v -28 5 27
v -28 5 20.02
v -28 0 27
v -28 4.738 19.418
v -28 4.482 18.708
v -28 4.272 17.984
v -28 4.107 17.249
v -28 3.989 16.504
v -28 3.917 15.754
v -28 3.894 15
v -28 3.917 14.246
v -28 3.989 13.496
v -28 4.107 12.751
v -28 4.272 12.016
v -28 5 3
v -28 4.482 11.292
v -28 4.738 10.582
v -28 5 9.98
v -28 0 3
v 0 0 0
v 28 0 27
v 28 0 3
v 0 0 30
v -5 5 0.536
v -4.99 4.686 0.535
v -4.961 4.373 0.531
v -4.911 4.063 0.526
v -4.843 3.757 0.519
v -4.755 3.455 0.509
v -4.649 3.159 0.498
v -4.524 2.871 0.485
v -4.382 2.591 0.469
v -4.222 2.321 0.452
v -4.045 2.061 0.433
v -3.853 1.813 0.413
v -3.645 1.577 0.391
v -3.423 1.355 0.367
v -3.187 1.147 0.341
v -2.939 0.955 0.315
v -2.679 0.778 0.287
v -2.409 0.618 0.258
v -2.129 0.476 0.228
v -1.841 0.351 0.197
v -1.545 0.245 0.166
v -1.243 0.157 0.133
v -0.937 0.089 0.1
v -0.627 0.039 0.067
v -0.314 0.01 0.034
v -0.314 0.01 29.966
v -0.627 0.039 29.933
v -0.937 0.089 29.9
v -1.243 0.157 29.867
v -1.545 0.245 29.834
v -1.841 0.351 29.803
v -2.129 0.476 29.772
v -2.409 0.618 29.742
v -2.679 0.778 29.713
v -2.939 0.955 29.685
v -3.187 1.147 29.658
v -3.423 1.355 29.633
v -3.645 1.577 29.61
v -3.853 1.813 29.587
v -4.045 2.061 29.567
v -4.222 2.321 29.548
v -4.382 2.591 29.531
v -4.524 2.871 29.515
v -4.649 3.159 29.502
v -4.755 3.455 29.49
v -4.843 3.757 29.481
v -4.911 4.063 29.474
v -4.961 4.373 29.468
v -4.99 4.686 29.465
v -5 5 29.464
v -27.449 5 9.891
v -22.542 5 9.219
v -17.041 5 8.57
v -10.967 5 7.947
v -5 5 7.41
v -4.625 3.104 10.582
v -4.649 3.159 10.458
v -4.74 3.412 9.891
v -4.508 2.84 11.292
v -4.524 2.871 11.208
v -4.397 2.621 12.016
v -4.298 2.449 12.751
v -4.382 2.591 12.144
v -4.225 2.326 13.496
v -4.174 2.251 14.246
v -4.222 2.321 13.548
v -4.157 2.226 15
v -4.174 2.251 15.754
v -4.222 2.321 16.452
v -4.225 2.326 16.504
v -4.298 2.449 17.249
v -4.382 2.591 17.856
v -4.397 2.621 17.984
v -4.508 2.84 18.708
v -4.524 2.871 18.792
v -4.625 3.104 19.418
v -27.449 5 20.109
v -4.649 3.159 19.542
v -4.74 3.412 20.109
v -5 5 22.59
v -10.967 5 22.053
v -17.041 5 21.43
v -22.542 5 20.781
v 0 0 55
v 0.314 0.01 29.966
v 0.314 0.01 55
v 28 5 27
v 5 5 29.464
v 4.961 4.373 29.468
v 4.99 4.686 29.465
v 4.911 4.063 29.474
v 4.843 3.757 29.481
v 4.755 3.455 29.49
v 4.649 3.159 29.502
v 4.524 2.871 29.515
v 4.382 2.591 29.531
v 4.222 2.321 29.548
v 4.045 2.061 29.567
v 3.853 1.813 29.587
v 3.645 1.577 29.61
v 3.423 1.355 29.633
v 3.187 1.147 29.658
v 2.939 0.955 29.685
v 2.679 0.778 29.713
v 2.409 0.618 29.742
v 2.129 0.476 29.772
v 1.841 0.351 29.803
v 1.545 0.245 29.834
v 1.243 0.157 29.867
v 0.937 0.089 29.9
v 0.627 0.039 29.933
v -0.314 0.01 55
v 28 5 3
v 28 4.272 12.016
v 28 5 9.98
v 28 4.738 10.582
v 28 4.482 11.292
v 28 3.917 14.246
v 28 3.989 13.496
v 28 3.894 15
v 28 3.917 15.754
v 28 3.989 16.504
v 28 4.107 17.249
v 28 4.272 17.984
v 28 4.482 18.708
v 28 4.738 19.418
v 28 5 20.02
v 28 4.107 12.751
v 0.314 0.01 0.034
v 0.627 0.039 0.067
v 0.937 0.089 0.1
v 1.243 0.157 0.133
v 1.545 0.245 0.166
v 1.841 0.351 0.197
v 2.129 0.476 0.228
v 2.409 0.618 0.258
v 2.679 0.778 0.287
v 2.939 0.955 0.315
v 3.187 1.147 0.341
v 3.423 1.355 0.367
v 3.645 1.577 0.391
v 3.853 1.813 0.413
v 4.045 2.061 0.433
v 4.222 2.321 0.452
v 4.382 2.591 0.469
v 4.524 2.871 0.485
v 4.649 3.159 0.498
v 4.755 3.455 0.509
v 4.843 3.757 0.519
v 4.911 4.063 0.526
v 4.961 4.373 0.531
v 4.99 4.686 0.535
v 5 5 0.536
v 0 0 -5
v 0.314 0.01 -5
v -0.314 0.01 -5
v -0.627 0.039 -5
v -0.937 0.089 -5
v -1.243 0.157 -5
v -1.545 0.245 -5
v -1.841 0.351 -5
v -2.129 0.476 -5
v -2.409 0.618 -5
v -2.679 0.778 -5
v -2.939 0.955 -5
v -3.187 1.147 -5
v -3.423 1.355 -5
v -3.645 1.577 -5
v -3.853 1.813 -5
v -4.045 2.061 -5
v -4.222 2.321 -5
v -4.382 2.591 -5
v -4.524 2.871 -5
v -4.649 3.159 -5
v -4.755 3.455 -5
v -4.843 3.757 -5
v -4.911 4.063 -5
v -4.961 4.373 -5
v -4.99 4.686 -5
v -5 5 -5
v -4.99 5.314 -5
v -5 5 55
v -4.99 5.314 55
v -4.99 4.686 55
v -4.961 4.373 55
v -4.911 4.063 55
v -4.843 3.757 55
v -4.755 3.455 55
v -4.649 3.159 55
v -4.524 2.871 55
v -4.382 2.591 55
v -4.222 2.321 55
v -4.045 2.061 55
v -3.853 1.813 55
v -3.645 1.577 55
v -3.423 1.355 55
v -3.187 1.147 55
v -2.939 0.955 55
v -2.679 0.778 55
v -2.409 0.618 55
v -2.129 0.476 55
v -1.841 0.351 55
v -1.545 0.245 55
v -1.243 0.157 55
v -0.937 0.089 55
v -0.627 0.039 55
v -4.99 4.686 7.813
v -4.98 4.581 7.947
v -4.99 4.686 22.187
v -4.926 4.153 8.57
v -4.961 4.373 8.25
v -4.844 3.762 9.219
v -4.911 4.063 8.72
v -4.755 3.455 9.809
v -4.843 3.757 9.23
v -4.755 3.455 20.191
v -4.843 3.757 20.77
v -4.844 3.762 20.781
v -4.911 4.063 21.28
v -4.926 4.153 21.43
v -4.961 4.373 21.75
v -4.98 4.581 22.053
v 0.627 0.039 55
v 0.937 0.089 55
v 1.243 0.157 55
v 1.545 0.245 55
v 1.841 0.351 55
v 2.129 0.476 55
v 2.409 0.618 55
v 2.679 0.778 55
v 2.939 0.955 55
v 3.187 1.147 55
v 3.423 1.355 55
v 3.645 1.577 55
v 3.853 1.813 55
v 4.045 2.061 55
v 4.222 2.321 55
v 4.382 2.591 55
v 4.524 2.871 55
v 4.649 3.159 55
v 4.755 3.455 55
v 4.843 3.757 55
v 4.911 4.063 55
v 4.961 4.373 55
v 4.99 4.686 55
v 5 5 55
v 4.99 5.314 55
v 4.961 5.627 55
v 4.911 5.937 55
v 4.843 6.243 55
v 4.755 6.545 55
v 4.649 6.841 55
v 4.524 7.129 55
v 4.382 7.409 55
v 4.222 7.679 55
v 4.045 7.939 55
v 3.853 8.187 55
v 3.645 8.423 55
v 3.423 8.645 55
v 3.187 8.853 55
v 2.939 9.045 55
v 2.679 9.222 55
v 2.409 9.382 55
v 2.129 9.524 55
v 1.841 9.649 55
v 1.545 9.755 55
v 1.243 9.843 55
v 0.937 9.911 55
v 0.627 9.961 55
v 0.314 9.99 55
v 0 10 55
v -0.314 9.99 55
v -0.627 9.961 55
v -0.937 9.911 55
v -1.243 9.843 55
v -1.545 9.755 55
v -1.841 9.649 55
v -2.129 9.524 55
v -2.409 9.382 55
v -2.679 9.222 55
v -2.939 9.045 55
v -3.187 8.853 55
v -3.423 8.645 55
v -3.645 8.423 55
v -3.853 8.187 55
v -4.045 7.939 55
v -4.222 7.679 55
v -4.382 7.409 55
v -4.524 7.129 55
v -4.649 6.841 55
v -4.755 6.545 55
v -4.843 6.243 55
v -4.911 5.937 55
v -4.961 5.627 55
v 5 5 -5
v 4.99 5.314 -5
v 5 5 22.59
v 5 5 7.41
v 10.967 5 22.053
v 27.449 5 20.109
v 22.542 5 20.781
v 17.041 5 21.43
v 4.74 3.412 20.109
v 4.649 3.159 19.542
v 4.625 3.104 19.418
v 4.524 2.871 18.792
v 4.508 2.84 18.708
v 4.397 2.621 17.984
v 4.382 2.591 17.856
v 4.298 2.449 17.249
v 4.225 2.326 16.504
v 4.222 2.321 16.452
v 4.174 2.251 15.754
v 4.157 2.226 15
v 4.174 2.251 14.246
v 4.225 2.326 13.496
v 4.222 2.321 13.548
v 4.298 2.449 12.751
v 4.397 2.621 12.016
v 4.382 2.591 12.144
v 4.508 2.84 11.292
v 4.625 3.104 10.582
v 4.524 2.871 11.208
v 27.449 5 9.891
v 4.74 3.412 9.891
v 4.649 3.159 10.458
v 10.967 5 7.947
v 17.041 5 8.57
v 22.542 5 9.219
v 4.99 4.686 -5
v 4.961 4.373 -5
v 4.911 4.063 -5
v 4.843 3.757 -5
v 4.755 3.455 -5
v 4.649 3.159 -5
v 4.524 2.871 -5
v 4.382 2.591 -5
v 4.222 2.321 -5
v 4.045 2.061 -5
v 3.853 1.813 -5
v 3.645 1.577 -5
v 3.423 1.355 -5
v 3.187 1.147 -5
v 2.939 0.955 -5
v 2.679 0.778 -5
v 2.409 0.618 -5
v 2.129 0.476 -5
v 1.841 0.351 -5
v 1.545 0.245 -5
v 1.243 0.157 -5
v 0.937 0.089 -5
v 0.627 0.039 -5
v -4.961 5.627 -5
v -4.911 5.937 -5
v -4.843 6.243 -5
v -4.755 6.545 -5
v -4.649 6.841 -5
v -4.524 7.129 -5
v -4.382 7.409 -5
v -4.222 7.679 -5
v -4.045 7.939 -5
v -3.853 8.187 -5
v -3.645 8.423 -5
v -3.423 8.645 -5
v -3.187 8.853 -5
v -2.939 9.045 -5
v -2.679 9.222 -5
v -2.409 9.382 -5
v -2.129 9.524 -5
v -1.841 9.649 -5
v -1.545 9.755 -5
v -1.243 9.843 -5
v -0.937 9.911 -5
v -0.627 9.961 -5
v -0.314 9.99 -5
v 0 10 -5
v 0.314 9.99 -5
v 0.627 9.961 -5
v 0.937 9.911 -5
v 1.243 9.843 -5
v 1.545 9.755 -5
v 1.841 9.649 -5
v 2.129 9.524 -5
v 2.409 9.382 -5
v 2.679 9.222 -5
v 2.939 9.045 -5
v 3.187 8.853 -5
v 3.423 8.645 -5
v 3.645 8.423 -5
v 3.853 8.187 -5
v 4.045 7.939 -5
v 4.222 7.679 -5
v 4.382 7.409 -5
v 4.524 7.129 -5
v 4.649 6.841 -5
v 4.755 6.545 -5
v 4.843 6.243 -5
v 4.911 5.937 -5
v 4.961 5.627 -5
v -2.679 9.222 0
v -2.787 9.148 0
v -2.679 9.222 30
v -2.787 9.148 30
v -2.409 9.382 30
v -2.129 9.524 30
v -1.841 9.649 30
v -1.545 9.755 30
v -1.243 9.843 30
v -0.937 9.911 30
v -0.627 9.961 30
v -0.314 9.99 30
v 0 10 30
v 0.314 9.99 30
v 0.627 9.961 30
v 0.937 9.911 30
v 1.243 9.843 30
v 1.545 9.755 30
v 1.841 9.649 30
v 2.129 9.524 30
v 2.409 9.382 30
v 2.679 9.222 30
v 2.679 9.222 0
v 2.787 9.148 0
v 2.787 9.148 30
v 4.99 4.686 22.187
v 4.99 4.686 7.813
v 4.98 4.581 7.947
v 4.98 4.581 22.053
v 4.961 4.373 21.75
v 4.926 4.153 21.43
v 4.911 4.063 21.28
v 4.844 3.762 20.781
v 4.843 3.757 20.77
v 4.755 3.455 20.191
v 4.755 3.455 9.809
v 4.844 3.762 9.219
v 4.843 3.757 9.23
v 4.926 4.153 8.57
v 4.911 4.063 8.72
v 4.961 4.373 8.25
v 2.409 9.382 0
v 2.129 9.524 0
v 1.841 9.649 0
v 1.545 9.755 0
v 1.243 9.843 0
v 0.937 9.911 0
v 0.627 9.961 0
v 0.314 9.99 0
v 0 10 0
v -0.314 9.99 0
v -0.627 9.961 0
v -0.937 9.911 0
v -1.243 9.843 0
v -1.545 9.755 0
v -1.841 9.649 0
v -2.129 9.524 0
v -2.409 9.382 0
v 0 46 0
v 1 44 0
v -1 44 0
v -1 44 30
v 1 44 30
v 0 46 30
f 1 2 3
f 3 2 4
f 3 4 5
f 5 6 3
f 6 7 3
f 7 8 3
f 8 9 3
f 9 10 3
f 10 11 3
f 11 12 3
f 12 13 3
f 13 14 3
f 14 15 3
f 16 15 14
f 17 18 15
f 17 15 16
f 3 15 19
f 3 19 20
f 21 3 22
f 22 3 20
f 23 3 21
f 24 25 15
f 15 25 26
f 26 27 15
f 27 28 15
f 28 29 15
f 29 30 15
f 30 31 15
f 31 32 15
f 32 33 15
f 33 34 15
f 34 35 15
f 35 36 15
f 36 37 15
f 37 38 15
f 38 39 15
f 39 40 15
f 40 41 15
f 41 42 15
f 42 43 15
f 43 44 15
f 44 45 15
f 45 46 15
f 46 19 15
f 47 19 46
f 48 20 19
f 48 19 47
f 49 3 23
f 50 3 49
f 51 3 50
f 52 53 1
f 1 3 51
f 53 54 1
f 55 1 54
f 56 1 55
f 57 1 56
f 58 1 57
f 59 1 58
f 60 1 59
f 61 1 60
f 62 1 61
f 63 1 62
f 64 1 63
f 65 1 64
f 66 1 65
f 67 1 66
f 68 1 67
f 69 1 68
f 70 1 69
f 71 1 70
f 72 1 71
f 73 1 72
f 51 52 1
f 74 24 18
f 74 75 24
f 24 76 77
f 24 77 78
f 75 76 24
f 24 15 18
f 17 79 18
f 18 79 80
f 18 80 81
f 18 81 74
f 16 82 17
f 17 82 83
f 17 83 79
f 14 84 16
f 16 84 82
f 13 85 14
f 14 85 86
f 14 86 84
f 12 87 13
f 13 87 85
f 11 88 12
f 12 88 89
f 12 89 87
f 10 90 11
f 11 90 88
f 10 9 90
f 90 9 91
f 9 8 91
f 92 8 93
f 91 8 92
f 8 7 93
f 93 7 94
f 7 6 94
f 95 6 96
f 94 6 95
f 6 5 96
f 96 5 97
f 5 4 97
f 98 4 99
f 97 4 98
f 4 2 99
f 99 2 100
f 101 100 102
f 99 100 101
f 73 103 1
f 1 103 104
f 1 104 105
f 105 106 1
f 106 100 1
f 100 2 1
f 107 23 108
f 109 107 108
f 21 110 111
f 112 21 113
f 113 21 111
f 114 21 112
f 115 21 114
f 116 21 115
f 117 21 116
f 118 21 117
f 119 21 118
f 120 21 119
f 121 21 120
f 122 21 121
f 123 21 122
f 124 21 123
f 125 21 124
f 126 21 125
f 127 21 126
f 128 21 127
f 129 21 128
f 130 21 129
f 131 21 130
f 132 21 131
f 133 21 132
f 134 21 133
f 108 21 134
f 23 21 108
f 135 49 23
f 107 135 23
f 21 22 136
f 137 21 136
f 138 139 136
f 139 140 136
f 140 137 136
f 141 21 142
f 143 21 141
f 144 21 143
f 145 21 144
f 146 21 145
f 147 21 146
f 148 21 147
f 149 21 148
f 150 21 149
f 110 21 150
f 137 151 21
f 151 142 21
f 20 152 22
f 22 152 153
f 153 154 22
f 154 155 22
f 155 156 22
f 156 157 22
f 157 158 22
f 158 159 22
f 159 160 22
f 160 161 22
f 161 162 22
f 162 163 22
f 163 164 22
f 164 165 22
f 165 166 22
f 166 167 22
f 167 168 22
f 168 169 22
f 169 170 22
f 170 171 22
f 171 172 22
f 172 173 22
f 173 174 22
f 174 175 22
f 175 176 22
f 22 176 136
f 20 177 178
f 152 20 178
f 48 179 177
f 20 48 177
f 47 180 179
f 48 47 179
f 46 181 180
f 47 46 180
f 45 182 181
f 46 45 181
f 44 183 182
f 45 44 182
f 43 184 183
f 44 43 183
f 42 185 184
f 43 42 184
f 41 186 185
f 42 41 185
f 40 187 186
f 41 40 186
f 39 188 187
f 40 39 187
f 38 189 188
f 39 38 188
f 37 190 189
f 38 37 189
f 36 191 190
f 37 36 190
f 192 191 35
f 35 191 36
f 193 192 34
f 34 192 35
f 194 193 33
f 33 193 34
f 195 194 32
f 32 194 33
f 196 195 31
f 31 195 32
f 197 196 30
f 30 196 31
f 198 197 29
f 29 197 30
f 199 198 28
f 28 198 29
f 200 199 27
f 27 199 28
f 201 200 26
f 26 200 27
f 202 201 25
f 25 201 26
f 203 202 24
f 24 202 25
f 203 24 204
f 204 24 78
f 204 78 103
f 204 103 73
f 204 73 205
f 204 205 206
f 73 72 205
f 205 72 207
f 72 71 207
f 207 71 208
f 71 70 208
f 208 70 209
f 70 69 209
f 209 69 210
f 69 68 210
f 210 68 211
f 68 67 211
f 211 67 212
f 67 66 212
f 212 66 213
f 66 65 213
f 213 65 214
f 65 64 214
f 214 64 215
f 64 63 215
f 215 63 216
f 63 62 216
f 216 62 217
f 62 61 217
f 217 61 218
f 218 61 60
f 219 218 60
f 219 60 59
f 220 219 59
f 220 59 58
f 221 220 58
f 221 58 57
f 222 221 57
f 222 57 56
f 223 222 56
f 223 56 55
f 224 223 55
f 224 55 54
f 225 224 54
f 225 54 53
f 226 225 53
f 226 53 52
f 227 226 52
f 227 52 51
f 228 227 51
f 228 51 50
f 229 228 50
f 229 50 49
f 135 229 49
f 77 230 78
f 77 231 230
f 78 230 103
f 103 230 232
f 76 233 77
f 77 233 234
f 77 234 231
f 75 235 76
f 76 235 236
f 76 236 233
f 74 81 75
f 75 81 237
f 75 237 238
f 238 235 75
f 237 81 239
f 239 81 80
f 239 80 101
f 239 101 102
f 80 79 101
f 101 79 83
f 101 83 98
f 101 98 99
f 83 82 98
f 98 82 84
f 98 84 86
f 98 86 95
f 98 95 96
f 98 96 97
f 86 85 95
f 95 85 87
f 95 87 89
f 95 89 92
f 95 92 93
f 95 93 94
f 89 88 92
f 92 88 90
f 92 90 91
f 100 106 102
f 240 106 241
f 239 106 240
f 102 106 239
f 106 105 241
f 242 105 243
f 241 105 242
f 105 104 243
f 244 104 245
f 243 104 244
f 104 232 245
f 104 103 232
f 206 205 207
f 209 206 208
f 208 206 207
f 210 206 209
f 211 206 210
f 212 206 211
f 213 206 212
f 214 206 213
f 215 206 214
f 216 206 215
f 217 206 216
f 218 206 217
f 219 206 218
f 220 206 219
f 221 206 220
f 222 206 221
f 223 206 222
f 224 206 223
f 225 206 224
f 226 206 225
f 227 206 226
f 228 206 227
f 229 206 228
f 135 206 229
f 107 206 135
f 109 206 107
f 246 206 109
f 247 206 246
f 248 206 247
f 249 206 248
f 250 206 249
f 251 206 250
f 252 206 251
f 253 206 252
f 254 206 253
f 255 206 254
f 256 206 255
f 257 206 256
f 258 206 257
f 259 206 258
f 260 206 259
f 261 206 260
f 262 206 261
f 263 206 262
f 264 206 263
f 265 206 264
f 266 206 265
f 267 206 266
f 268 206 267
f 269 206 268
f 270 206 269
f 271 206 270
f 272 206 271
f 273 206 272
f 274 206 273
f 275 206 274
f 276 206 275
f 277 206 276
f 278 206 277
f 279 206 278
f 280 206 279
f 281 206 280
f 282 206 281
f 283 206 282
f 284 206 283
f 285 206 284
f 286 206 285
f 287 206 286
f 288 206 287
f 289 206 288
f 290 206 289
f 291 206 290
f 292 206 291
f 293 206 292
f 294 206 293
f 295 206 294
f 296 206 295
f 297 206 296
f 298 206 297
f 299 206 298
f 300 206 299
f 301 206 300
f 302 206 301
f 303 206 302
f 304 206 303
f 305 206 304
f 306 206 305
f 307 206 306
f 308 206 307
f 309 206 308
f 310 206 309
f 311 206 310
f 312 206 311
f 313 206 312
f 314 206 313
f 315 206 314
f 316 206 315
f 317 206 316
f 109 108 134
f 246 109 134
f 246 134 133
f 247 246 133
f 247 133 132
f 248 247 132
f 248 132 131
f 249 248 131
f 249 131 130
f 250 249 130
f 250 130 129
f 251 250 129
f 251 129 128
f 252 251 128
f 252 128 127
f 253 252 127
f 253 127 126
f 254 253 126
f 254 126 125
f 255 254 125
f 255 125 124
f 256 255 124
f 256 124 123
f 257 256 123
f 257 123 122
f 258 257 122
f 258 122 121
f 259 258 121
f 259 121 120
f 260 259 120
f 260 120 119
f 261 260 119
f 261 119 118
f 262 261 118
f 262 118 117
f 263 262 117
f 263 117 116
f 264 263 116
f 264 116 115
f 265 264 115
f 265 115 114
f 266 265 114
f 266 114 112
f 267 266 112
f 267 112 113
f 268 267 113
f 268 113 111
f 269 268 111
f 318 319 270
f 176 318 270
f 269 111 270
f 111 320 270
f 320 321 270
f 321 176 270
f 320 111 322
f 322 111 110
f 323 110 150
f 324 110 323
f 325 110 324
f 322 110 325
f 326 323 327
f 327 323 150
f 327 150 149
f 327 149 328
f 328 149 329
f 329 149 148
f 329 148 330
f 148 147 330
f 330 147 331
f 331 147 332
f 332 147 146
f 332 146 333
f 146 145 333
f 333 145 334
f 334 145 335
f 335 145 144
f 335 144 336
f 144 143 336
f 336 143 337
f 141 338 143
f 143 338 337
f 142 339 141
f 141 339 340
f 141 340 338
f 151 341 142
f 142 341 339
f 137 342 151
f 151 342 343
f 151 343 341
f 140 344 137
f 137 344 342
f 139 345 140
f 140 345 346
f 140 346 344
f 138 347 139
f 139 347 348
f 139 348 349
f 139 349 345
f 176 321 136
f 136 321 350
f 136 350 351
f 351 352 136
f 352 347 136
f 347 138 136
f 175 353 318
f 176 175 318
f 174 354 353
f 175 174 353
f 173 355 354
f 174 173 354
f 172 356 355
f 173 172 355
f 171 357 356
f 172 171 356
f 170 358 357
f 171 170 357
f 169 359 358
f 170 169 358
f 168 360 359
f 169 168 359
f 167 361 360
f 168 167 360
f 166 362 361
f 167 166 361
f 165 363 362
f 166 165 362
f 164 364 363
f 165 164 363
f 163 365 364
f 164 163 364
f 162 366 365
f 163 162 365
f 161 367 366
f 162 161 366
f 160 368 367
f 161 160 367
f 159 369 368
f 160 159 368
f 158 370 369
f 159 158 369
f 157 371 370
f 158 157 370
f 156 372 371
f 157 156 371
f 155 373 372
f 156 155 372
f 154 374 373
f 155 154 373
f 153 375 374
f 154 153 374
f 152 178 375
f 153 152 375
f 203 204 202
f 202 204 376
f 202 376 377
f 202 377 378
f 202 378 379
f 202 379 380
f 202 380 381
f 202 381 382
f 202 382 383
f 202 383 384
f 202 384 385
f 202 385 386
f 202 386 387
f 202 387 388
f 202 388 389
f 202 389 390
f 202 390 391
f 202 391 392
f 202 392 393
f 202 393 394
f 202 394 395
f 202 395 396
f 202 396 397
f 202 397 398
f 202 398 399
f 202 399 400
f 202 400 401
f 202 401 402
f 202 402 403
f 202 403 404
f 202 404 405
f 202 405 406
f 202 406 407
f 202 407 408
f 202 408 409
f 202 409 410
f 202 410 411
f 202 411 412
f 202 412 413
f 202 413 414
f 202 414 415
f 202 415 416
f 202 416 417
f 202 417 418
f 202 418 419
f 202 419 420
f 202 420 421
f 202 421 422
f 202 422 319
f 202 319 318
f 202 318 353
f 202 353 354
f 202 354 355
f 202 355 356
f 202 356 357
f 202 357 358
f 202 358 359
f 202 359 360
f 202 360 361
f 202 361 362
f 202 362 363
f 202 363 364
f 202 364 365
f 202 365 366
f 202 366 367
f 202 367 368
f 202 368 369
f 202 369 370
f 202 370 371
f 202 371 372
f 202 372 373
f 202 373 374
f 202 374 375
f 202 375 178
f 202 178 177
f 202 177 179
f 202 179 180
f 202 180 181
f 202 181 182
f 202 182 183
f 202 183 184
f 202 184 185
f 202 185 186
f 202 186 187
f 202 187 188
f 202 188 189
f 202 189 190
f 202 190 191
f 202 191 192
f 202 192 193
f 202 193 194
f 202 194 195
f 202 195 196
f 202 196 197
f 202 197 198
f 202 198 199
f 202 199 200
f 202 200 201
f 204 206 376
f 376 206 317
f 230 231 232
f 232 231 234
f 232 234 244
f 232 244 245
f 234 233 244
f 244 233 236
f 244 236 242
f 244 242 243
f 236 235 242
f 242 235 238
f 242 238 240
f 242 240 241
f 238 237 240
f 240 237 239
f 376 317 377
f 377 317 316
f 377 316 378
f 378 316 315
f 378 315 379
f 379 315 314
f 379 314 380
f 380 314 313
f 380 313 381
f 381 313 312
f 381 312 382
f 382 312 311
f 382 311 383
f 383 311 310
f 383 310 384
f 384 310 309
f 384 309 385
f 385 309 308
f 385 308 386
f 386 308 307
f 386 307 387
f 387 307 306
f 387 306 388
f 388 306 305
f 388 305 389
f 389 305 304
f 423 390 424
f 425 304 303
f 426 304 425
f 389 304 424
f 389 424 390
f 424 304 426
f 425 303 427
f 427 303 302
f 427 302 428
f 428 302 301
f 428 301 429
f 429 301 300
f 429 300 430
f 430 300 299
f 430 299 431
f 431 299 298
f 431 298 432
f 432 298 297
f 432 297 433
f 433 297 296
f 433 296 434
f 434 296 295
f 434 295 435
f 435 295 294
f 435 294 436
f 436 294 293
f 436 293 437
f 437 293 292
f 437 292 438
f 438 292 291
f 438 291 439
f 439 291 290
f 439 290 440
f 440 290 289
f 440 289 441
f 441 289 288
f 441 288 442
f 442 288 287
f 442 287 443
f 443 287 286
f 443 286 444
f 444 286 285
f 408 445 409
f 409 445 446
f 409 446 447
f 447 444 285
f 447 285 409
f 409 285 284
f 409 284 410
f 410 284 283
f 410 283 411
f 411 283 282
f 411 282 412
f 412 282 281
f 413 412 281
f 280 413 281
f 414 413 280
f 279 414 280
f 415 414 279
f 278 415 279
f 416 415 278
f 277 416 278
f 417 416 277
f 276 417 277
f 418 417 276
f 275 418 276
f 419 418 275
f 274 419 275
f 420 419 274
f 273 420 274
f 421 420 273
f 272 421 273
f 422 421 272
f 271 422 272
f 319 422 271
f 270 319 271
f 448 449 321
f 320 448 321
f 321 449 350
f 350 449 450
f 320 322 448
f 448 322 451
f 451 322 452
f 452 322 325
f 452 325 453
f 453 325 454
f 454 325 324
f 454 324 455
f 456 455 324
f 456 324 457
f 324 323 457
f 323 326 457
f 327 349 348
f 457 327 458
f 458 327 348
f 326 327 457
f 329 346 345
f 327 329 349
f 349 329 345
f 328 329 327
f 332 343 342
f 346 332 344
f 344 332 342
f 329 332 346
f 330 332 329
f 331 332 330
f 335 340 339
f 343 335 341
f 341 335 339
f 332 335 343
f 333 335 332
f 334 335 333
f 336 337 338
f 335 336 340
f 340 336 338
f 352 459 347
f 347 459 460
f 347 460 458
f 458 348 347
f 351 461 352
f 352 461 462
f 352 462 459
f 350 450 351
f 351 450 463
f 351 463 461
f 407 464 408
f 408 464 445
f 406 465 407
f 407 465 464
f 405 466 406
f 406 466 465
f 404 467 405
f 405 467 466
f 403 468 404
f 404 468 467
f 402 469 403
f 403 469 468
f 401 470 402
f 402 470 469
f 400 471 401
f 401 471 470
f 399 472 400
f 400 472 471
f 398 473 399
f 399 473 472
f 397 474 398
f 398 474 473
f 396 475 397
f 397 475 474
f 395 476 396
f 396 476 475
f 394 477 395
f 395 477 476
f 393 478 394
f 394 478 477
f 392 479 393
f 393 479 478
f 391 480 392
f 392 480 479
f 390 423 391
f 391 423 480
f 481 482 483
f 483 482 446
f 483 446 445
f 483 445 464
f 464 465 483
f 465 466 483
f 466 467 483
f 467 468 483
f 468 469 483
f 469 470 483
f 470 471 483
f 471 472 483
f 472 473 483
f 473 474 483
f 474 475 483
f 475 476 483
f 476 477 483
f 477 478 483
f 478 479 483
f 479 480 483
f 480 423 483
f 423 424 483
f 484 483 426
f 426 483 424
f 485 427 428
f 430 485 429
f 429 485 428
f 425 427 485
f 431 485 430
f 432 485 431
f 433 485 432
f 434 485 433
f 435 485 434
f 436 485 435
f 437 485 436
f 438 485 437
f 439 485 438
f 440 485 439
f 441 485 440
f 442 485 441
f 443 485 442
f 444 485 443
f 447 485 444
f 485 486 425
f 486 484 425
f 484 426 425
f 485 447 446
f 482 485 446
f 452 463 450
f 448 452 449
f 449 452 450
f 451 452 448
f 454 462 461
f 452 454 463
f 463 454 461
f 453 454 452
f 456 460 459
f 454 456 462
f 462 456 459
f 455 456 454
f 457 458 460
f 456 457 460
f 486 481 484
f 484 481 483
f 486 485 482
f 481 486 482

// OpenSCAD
module zarazka(vyska, sirka, hloubka, kulicka, vyska_seseknuti=3){
	difference(){
		cube([sirka,hloubka,vyska]);

		translate([0.5,kulicka+2,vyska/2])
		rotate([0,90,4])
		cylinder(r1=kulicka,r2=kulicka,h=sirka+1);

		polyhedron(points = [[0,0,0], [sirka,0,0], 
			[sirka,0,vyska_seseknuti], 
			[0,hloubka,0], [sirka,hloubka,0], 
			[sirka,hloubka,vyska_seseknuti]],
			faces = [[0,1,2],[3,5,4],[0,3,4,1],[1,4,5,2],
			[2,5,3,0]]);

		polyhedron(points = [[0,0,vyska], [sirka,0,vyska], 
			[sirka,0,vyska - vyska_seseknuti], 
			[0,hloubka,vyska], [sirka,hloubka,vyska], 
			[sirka,hloubka,vyska - vyska_seseknuti]],
			faces = [[0,1,2],[3,5,4],[0,3,4,1],[1,4,5,2],
			[2,5,3,0]]);
	}
}

module jazycek(vyska, sirka_zacatek, sirka_konec, delka, 
			vzdalenost_zacatek = 2){
	polyhedron(points = [[0,delka,0],
	[sirka_zacatek/2,delka-vzdalenost_zacatek,0], 
	[sirka_konec/2,0,0], [-sirka_konec/2,0,0],
	[-sirka_zacatek/2,delka-vzdalenost_zacatek,0],
	[0,delka,vyska],
	[sirka_zacatek/2,delka-vzdalenost_zacatek,vyska], 
	[sirka_konec/2,0,vyska], [-sirka_konec/2,0,vyska],
	[-sirka_zacatek/2,delka-vzdalenost_zacatek,vyska]],
	faces=[[0,1,2,3,4], [9,8,7,6,5], [3,2,7,8], [0,4,9,5], 
	[4,3,8,9], [5,6,1,0], [6,7,2,1]]);
}

module lopatka(vyska_lopatka,tyc_uchyceni,
					vyska_zarazka, sirka_zarazka, 
					hloubka_zarazka, kulicka_zarazka,
					vyska_jazycek, sirka_jazycek_zacatek, 
					sirka_jazycek_konec, delka_jazycek,
					vyska_zapusteni){
	polomer_tyc = tyc_uchyceni;

	difference(){
		union(){
			translate([0,polomer_tyc,-5])
			cylinder(h=vyska_lopatka+30,r1=polomer_tyc,r2=polomer_tyc);
			zarazka(vyska_zarazka, sirka_zarazka, 
					hloubka_zarazka, kulicka_zarazka);

			mirror([1,0,0])
			zarazka(vyska_zarazka, sirka_zarazka, 
					hloubka_zarazka, kulicka_zarazka);
			
			translate([0,polomer_tyc,0])
			jazycek(vyska_jazycek, sirka_jazycek_zacatek,
					sirka_jazycek_konec, 
					delka_jazycek-polomer_tyc);
		}

	}
}

module uchyt(polomer_tyc, vyska, vyska_zapusteni, drzak = false){
	difference(){
		union(){
			cylinder(h=vyska,r1=polomer_tyc,r2=polomer_tyc);
			translate([0,0,vyska])
			cylinder(h=vyska_zapusteni,r1=polomer_tyc-1.2,r2=polomer_tyc-1);
		}
	
		// zoubky lepsi drzeni
		if(drzak == true){
		for ( i = [0 : 19] )
		{
			translate([	cos(i * 18)*polomer_tyc,
							sin(i * 18)*polomer_tyc,
							4])
			rotate( 45 + i * 18, [0, 0, 1])
			cube([2,2,5], center = true);
		}
		}
	}
}


$fn=100;
lopatka(	30,5,
			30,28,5,12,
			30,2,6,46,
			5 );

//translate([50,0,0])
//uchyt(5,5,5);

//translate([70,0,0])
//uchyt(5,25,5,true);
